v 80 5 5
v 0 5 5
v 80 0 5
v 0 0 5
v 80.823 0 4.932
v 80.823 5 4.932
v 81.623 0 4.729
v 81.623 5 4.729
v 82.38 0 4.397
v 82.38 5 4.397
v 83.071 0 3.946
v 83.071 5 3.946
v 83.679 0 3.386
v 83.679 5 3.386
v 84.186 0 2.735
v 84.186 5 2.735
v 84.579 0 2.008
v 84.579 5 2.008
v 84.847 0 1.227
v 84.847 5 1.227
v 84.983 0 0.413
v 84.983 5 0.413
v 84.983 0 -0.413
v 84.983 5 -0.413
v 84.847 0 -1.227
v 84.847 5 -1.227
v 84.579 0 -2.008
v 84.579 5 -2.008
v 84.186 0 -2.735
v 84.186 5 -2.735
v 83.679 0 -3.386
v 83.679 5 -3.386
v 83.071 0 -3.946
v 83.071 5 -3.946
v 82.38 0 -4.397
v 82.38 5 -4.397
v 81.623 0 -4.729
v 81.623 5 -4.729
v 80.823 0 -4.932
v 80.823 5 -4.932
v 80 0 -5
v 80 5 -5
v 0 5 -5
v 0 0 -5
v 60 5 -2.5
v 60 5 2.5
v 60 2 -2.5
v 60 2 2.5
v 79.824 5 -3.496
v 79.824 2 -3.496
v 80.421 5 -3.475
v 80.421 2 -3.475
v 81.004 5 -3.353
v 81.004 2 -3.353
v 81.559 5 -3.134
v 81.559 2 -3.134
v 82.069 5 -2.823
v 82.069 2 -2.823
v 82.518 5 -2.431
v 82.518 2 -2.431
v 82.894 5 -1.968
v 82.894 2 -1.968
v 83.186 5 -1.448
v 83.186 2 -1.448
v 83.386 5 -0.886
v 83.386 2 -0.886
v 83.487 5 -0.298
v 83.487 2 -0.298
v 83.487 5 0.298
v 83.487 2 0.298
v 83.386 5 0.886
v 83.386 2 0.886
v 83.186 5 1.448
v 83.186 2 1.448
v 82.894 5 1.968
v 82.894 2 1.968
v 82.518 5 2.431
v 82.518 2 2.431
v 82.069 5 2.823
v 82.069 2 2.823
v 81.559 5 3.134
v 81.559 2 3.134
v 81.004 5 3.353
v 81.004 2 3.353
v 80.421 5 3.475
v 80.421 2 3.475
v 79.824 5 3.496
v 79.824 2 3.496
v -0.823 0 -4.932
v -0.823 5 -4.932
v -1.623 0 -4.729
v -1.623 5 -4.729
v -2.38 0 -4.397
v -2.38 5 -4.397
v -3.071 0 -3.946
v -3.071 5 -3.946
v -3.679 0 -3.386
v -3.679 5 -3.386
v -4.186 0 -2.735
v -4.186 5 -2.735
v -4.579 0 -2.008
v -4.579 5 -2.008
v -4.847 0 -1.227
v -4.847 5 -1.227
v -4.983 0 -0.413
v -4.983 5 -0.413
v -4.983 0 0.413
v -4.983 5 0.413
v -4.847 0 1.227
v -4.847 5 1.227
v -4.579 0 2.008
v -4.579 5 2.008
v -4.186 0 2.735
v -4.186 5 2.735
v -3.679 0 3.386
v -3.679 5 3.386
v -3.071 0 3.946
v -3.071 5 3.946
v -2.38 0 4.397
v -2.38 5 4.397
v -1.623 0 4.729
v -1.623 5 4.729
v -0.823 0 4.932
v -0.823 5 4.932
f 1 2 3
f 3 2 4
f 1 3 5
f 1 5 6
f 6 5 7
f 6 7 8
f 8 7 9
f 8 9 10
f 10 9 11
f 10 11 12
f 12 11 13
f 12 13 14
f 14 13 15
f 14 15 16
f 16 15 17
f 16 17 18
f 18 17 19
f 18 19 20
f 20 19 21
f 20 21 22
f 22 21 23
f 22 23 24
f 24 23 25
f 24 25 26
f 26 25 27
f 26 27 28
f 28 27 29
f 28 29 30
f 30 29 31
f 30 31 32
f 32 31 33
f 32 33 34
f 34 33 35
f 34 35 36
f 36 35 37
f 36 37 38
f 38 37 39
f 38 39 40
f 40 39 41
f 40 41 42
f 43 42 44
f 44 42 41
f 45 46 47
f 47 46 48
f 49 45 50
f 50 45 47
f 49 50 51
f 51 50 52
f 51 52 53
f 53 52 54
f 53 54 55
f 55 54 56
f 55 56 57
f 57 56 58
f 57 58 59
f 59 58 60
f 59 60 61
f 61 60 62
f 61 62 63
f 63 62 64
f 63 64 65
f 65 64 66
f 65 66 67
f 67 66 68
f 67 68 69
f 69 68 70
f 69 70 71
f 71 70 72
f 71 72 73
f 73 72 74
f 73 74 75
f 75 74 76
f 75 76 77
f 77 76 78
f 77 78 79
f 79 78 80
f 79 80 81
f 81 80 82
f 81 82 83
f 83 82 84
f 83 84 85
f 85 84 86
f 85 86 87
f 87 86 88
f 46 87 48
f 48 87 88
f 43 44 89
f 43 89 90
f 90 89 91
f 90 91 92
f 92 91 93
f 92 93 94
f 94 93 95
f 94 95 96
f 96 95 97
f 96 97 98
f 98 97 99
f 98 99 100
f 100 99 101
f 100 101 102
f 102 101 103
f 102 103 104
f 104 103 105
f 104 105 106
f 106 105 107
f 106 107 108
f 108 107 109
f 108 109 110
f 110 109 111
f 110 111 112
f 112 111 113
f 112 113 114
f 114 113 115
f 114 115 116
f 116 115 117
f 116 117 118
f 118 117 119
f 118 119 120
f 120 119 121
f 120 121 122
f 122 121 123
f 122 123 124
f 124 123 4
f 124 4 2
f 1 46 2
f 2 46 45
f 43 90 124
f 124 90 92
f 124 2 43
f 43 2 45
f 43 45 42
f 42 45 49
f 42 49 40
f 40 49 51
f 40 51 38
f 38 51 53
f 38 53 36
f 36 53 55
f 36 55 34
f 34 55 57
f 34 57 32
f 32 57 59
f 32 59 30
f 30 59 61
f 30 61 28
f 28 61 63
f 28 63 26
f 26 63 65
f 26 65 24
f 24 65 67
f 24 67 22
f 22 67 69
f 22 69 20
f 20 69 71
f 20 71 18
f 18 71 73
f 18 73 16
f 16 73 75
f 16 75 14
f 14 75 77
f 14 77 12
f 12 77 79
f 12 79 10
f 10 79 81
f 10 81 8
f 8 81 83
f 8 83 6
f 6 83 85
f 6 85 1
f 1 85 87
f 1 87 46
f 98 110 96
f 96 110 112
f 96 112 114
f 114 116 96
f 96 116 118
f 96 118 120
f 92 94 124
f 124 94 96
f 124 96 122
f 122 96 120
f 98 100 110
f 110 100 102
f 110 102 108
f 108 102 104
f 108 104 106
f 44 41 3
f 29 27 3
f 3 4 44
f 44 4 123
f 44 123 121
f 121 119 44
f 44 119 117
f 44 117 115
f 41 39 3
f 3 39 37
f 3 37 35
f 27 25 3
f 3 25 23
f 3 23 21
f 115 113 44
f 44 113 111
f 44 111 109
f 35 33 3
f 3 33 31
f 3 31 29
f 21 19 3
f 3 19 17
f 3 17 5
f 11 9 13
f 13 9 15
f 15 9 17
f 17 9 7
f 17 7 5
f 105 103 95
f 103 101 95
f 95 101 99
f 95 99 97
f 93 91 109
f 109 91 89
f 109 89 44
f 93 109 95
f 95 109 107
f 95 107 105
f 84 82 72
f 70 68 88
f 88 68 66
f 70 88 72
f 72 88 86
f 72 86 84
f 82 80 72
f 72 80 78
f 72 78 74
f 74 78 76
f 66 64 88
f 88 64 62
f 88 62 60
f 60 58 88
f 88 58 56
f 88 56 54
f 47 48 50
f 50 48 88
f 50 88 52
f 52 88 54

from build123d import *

# Parameters (mm, degrees)
Y_KSEKLIK_EKSTR_ZYON1_DEPTH = 5
Y_KSEKLIK_EKSTR_ZYON2_DEPTH = 2


with BuildPart() as part:
    # Çizim1 → Yükseklik-Ekstrüzyon1 (new body)
    with BuildSketch(Plane(origin=(0, 0, 0), x_dir=(1, 0, 0), z_dir=(0, 1, 0))):
        with BuildLine():
            Line((80, 5), (0, 5))
            ThreePointArc((0, 5), (-5, 0), (0, -5))
            Line((0, -5), (80, -5))
            ThreePointArc((80, -5), (85, 0), (80, 5))
        make_face()
        with BuildLine():
            Line((60, 2.5), (79.824449331, 3.495594651))
            ThreePointArc((79.824449331, 3.495594651), (83.5, 0), (79.824449331, -3.495594651))
            Line((79.824449331, -3.495594651), (60, -2.5))
            Line((60, -2.5), (60, 2.5))
        make_face(mode=Mode.SUBTRACT)
    extrude(amount=Y_KSEKLIK_EKSTR_ZYON1_DEPTH)

    # Çizim1<4> → Yükseklik-Ekstrüzyon2 (add)
    with BuildSketch(Plane(origin=(0, 0, 0), x_dir=(1, 0, 0), z_dir=(0, 1, 0))):
        with BuildLine():
            ThreePointArc((79.824449331, -3.495594651), (83.5, 0), (79.824449331, 3.495594651))
            Line((79.824449331, 3.495594651), (60, 2.5))
            Line((60, 2.5), (60, -2.5))
            Line((60, -2.5), (79.824449331, -3.495594651))
        make_face()
    extrude(amount=Y_KSEKLIK_EKSTR_ZYON2_DEPTH)


solid = part.part
